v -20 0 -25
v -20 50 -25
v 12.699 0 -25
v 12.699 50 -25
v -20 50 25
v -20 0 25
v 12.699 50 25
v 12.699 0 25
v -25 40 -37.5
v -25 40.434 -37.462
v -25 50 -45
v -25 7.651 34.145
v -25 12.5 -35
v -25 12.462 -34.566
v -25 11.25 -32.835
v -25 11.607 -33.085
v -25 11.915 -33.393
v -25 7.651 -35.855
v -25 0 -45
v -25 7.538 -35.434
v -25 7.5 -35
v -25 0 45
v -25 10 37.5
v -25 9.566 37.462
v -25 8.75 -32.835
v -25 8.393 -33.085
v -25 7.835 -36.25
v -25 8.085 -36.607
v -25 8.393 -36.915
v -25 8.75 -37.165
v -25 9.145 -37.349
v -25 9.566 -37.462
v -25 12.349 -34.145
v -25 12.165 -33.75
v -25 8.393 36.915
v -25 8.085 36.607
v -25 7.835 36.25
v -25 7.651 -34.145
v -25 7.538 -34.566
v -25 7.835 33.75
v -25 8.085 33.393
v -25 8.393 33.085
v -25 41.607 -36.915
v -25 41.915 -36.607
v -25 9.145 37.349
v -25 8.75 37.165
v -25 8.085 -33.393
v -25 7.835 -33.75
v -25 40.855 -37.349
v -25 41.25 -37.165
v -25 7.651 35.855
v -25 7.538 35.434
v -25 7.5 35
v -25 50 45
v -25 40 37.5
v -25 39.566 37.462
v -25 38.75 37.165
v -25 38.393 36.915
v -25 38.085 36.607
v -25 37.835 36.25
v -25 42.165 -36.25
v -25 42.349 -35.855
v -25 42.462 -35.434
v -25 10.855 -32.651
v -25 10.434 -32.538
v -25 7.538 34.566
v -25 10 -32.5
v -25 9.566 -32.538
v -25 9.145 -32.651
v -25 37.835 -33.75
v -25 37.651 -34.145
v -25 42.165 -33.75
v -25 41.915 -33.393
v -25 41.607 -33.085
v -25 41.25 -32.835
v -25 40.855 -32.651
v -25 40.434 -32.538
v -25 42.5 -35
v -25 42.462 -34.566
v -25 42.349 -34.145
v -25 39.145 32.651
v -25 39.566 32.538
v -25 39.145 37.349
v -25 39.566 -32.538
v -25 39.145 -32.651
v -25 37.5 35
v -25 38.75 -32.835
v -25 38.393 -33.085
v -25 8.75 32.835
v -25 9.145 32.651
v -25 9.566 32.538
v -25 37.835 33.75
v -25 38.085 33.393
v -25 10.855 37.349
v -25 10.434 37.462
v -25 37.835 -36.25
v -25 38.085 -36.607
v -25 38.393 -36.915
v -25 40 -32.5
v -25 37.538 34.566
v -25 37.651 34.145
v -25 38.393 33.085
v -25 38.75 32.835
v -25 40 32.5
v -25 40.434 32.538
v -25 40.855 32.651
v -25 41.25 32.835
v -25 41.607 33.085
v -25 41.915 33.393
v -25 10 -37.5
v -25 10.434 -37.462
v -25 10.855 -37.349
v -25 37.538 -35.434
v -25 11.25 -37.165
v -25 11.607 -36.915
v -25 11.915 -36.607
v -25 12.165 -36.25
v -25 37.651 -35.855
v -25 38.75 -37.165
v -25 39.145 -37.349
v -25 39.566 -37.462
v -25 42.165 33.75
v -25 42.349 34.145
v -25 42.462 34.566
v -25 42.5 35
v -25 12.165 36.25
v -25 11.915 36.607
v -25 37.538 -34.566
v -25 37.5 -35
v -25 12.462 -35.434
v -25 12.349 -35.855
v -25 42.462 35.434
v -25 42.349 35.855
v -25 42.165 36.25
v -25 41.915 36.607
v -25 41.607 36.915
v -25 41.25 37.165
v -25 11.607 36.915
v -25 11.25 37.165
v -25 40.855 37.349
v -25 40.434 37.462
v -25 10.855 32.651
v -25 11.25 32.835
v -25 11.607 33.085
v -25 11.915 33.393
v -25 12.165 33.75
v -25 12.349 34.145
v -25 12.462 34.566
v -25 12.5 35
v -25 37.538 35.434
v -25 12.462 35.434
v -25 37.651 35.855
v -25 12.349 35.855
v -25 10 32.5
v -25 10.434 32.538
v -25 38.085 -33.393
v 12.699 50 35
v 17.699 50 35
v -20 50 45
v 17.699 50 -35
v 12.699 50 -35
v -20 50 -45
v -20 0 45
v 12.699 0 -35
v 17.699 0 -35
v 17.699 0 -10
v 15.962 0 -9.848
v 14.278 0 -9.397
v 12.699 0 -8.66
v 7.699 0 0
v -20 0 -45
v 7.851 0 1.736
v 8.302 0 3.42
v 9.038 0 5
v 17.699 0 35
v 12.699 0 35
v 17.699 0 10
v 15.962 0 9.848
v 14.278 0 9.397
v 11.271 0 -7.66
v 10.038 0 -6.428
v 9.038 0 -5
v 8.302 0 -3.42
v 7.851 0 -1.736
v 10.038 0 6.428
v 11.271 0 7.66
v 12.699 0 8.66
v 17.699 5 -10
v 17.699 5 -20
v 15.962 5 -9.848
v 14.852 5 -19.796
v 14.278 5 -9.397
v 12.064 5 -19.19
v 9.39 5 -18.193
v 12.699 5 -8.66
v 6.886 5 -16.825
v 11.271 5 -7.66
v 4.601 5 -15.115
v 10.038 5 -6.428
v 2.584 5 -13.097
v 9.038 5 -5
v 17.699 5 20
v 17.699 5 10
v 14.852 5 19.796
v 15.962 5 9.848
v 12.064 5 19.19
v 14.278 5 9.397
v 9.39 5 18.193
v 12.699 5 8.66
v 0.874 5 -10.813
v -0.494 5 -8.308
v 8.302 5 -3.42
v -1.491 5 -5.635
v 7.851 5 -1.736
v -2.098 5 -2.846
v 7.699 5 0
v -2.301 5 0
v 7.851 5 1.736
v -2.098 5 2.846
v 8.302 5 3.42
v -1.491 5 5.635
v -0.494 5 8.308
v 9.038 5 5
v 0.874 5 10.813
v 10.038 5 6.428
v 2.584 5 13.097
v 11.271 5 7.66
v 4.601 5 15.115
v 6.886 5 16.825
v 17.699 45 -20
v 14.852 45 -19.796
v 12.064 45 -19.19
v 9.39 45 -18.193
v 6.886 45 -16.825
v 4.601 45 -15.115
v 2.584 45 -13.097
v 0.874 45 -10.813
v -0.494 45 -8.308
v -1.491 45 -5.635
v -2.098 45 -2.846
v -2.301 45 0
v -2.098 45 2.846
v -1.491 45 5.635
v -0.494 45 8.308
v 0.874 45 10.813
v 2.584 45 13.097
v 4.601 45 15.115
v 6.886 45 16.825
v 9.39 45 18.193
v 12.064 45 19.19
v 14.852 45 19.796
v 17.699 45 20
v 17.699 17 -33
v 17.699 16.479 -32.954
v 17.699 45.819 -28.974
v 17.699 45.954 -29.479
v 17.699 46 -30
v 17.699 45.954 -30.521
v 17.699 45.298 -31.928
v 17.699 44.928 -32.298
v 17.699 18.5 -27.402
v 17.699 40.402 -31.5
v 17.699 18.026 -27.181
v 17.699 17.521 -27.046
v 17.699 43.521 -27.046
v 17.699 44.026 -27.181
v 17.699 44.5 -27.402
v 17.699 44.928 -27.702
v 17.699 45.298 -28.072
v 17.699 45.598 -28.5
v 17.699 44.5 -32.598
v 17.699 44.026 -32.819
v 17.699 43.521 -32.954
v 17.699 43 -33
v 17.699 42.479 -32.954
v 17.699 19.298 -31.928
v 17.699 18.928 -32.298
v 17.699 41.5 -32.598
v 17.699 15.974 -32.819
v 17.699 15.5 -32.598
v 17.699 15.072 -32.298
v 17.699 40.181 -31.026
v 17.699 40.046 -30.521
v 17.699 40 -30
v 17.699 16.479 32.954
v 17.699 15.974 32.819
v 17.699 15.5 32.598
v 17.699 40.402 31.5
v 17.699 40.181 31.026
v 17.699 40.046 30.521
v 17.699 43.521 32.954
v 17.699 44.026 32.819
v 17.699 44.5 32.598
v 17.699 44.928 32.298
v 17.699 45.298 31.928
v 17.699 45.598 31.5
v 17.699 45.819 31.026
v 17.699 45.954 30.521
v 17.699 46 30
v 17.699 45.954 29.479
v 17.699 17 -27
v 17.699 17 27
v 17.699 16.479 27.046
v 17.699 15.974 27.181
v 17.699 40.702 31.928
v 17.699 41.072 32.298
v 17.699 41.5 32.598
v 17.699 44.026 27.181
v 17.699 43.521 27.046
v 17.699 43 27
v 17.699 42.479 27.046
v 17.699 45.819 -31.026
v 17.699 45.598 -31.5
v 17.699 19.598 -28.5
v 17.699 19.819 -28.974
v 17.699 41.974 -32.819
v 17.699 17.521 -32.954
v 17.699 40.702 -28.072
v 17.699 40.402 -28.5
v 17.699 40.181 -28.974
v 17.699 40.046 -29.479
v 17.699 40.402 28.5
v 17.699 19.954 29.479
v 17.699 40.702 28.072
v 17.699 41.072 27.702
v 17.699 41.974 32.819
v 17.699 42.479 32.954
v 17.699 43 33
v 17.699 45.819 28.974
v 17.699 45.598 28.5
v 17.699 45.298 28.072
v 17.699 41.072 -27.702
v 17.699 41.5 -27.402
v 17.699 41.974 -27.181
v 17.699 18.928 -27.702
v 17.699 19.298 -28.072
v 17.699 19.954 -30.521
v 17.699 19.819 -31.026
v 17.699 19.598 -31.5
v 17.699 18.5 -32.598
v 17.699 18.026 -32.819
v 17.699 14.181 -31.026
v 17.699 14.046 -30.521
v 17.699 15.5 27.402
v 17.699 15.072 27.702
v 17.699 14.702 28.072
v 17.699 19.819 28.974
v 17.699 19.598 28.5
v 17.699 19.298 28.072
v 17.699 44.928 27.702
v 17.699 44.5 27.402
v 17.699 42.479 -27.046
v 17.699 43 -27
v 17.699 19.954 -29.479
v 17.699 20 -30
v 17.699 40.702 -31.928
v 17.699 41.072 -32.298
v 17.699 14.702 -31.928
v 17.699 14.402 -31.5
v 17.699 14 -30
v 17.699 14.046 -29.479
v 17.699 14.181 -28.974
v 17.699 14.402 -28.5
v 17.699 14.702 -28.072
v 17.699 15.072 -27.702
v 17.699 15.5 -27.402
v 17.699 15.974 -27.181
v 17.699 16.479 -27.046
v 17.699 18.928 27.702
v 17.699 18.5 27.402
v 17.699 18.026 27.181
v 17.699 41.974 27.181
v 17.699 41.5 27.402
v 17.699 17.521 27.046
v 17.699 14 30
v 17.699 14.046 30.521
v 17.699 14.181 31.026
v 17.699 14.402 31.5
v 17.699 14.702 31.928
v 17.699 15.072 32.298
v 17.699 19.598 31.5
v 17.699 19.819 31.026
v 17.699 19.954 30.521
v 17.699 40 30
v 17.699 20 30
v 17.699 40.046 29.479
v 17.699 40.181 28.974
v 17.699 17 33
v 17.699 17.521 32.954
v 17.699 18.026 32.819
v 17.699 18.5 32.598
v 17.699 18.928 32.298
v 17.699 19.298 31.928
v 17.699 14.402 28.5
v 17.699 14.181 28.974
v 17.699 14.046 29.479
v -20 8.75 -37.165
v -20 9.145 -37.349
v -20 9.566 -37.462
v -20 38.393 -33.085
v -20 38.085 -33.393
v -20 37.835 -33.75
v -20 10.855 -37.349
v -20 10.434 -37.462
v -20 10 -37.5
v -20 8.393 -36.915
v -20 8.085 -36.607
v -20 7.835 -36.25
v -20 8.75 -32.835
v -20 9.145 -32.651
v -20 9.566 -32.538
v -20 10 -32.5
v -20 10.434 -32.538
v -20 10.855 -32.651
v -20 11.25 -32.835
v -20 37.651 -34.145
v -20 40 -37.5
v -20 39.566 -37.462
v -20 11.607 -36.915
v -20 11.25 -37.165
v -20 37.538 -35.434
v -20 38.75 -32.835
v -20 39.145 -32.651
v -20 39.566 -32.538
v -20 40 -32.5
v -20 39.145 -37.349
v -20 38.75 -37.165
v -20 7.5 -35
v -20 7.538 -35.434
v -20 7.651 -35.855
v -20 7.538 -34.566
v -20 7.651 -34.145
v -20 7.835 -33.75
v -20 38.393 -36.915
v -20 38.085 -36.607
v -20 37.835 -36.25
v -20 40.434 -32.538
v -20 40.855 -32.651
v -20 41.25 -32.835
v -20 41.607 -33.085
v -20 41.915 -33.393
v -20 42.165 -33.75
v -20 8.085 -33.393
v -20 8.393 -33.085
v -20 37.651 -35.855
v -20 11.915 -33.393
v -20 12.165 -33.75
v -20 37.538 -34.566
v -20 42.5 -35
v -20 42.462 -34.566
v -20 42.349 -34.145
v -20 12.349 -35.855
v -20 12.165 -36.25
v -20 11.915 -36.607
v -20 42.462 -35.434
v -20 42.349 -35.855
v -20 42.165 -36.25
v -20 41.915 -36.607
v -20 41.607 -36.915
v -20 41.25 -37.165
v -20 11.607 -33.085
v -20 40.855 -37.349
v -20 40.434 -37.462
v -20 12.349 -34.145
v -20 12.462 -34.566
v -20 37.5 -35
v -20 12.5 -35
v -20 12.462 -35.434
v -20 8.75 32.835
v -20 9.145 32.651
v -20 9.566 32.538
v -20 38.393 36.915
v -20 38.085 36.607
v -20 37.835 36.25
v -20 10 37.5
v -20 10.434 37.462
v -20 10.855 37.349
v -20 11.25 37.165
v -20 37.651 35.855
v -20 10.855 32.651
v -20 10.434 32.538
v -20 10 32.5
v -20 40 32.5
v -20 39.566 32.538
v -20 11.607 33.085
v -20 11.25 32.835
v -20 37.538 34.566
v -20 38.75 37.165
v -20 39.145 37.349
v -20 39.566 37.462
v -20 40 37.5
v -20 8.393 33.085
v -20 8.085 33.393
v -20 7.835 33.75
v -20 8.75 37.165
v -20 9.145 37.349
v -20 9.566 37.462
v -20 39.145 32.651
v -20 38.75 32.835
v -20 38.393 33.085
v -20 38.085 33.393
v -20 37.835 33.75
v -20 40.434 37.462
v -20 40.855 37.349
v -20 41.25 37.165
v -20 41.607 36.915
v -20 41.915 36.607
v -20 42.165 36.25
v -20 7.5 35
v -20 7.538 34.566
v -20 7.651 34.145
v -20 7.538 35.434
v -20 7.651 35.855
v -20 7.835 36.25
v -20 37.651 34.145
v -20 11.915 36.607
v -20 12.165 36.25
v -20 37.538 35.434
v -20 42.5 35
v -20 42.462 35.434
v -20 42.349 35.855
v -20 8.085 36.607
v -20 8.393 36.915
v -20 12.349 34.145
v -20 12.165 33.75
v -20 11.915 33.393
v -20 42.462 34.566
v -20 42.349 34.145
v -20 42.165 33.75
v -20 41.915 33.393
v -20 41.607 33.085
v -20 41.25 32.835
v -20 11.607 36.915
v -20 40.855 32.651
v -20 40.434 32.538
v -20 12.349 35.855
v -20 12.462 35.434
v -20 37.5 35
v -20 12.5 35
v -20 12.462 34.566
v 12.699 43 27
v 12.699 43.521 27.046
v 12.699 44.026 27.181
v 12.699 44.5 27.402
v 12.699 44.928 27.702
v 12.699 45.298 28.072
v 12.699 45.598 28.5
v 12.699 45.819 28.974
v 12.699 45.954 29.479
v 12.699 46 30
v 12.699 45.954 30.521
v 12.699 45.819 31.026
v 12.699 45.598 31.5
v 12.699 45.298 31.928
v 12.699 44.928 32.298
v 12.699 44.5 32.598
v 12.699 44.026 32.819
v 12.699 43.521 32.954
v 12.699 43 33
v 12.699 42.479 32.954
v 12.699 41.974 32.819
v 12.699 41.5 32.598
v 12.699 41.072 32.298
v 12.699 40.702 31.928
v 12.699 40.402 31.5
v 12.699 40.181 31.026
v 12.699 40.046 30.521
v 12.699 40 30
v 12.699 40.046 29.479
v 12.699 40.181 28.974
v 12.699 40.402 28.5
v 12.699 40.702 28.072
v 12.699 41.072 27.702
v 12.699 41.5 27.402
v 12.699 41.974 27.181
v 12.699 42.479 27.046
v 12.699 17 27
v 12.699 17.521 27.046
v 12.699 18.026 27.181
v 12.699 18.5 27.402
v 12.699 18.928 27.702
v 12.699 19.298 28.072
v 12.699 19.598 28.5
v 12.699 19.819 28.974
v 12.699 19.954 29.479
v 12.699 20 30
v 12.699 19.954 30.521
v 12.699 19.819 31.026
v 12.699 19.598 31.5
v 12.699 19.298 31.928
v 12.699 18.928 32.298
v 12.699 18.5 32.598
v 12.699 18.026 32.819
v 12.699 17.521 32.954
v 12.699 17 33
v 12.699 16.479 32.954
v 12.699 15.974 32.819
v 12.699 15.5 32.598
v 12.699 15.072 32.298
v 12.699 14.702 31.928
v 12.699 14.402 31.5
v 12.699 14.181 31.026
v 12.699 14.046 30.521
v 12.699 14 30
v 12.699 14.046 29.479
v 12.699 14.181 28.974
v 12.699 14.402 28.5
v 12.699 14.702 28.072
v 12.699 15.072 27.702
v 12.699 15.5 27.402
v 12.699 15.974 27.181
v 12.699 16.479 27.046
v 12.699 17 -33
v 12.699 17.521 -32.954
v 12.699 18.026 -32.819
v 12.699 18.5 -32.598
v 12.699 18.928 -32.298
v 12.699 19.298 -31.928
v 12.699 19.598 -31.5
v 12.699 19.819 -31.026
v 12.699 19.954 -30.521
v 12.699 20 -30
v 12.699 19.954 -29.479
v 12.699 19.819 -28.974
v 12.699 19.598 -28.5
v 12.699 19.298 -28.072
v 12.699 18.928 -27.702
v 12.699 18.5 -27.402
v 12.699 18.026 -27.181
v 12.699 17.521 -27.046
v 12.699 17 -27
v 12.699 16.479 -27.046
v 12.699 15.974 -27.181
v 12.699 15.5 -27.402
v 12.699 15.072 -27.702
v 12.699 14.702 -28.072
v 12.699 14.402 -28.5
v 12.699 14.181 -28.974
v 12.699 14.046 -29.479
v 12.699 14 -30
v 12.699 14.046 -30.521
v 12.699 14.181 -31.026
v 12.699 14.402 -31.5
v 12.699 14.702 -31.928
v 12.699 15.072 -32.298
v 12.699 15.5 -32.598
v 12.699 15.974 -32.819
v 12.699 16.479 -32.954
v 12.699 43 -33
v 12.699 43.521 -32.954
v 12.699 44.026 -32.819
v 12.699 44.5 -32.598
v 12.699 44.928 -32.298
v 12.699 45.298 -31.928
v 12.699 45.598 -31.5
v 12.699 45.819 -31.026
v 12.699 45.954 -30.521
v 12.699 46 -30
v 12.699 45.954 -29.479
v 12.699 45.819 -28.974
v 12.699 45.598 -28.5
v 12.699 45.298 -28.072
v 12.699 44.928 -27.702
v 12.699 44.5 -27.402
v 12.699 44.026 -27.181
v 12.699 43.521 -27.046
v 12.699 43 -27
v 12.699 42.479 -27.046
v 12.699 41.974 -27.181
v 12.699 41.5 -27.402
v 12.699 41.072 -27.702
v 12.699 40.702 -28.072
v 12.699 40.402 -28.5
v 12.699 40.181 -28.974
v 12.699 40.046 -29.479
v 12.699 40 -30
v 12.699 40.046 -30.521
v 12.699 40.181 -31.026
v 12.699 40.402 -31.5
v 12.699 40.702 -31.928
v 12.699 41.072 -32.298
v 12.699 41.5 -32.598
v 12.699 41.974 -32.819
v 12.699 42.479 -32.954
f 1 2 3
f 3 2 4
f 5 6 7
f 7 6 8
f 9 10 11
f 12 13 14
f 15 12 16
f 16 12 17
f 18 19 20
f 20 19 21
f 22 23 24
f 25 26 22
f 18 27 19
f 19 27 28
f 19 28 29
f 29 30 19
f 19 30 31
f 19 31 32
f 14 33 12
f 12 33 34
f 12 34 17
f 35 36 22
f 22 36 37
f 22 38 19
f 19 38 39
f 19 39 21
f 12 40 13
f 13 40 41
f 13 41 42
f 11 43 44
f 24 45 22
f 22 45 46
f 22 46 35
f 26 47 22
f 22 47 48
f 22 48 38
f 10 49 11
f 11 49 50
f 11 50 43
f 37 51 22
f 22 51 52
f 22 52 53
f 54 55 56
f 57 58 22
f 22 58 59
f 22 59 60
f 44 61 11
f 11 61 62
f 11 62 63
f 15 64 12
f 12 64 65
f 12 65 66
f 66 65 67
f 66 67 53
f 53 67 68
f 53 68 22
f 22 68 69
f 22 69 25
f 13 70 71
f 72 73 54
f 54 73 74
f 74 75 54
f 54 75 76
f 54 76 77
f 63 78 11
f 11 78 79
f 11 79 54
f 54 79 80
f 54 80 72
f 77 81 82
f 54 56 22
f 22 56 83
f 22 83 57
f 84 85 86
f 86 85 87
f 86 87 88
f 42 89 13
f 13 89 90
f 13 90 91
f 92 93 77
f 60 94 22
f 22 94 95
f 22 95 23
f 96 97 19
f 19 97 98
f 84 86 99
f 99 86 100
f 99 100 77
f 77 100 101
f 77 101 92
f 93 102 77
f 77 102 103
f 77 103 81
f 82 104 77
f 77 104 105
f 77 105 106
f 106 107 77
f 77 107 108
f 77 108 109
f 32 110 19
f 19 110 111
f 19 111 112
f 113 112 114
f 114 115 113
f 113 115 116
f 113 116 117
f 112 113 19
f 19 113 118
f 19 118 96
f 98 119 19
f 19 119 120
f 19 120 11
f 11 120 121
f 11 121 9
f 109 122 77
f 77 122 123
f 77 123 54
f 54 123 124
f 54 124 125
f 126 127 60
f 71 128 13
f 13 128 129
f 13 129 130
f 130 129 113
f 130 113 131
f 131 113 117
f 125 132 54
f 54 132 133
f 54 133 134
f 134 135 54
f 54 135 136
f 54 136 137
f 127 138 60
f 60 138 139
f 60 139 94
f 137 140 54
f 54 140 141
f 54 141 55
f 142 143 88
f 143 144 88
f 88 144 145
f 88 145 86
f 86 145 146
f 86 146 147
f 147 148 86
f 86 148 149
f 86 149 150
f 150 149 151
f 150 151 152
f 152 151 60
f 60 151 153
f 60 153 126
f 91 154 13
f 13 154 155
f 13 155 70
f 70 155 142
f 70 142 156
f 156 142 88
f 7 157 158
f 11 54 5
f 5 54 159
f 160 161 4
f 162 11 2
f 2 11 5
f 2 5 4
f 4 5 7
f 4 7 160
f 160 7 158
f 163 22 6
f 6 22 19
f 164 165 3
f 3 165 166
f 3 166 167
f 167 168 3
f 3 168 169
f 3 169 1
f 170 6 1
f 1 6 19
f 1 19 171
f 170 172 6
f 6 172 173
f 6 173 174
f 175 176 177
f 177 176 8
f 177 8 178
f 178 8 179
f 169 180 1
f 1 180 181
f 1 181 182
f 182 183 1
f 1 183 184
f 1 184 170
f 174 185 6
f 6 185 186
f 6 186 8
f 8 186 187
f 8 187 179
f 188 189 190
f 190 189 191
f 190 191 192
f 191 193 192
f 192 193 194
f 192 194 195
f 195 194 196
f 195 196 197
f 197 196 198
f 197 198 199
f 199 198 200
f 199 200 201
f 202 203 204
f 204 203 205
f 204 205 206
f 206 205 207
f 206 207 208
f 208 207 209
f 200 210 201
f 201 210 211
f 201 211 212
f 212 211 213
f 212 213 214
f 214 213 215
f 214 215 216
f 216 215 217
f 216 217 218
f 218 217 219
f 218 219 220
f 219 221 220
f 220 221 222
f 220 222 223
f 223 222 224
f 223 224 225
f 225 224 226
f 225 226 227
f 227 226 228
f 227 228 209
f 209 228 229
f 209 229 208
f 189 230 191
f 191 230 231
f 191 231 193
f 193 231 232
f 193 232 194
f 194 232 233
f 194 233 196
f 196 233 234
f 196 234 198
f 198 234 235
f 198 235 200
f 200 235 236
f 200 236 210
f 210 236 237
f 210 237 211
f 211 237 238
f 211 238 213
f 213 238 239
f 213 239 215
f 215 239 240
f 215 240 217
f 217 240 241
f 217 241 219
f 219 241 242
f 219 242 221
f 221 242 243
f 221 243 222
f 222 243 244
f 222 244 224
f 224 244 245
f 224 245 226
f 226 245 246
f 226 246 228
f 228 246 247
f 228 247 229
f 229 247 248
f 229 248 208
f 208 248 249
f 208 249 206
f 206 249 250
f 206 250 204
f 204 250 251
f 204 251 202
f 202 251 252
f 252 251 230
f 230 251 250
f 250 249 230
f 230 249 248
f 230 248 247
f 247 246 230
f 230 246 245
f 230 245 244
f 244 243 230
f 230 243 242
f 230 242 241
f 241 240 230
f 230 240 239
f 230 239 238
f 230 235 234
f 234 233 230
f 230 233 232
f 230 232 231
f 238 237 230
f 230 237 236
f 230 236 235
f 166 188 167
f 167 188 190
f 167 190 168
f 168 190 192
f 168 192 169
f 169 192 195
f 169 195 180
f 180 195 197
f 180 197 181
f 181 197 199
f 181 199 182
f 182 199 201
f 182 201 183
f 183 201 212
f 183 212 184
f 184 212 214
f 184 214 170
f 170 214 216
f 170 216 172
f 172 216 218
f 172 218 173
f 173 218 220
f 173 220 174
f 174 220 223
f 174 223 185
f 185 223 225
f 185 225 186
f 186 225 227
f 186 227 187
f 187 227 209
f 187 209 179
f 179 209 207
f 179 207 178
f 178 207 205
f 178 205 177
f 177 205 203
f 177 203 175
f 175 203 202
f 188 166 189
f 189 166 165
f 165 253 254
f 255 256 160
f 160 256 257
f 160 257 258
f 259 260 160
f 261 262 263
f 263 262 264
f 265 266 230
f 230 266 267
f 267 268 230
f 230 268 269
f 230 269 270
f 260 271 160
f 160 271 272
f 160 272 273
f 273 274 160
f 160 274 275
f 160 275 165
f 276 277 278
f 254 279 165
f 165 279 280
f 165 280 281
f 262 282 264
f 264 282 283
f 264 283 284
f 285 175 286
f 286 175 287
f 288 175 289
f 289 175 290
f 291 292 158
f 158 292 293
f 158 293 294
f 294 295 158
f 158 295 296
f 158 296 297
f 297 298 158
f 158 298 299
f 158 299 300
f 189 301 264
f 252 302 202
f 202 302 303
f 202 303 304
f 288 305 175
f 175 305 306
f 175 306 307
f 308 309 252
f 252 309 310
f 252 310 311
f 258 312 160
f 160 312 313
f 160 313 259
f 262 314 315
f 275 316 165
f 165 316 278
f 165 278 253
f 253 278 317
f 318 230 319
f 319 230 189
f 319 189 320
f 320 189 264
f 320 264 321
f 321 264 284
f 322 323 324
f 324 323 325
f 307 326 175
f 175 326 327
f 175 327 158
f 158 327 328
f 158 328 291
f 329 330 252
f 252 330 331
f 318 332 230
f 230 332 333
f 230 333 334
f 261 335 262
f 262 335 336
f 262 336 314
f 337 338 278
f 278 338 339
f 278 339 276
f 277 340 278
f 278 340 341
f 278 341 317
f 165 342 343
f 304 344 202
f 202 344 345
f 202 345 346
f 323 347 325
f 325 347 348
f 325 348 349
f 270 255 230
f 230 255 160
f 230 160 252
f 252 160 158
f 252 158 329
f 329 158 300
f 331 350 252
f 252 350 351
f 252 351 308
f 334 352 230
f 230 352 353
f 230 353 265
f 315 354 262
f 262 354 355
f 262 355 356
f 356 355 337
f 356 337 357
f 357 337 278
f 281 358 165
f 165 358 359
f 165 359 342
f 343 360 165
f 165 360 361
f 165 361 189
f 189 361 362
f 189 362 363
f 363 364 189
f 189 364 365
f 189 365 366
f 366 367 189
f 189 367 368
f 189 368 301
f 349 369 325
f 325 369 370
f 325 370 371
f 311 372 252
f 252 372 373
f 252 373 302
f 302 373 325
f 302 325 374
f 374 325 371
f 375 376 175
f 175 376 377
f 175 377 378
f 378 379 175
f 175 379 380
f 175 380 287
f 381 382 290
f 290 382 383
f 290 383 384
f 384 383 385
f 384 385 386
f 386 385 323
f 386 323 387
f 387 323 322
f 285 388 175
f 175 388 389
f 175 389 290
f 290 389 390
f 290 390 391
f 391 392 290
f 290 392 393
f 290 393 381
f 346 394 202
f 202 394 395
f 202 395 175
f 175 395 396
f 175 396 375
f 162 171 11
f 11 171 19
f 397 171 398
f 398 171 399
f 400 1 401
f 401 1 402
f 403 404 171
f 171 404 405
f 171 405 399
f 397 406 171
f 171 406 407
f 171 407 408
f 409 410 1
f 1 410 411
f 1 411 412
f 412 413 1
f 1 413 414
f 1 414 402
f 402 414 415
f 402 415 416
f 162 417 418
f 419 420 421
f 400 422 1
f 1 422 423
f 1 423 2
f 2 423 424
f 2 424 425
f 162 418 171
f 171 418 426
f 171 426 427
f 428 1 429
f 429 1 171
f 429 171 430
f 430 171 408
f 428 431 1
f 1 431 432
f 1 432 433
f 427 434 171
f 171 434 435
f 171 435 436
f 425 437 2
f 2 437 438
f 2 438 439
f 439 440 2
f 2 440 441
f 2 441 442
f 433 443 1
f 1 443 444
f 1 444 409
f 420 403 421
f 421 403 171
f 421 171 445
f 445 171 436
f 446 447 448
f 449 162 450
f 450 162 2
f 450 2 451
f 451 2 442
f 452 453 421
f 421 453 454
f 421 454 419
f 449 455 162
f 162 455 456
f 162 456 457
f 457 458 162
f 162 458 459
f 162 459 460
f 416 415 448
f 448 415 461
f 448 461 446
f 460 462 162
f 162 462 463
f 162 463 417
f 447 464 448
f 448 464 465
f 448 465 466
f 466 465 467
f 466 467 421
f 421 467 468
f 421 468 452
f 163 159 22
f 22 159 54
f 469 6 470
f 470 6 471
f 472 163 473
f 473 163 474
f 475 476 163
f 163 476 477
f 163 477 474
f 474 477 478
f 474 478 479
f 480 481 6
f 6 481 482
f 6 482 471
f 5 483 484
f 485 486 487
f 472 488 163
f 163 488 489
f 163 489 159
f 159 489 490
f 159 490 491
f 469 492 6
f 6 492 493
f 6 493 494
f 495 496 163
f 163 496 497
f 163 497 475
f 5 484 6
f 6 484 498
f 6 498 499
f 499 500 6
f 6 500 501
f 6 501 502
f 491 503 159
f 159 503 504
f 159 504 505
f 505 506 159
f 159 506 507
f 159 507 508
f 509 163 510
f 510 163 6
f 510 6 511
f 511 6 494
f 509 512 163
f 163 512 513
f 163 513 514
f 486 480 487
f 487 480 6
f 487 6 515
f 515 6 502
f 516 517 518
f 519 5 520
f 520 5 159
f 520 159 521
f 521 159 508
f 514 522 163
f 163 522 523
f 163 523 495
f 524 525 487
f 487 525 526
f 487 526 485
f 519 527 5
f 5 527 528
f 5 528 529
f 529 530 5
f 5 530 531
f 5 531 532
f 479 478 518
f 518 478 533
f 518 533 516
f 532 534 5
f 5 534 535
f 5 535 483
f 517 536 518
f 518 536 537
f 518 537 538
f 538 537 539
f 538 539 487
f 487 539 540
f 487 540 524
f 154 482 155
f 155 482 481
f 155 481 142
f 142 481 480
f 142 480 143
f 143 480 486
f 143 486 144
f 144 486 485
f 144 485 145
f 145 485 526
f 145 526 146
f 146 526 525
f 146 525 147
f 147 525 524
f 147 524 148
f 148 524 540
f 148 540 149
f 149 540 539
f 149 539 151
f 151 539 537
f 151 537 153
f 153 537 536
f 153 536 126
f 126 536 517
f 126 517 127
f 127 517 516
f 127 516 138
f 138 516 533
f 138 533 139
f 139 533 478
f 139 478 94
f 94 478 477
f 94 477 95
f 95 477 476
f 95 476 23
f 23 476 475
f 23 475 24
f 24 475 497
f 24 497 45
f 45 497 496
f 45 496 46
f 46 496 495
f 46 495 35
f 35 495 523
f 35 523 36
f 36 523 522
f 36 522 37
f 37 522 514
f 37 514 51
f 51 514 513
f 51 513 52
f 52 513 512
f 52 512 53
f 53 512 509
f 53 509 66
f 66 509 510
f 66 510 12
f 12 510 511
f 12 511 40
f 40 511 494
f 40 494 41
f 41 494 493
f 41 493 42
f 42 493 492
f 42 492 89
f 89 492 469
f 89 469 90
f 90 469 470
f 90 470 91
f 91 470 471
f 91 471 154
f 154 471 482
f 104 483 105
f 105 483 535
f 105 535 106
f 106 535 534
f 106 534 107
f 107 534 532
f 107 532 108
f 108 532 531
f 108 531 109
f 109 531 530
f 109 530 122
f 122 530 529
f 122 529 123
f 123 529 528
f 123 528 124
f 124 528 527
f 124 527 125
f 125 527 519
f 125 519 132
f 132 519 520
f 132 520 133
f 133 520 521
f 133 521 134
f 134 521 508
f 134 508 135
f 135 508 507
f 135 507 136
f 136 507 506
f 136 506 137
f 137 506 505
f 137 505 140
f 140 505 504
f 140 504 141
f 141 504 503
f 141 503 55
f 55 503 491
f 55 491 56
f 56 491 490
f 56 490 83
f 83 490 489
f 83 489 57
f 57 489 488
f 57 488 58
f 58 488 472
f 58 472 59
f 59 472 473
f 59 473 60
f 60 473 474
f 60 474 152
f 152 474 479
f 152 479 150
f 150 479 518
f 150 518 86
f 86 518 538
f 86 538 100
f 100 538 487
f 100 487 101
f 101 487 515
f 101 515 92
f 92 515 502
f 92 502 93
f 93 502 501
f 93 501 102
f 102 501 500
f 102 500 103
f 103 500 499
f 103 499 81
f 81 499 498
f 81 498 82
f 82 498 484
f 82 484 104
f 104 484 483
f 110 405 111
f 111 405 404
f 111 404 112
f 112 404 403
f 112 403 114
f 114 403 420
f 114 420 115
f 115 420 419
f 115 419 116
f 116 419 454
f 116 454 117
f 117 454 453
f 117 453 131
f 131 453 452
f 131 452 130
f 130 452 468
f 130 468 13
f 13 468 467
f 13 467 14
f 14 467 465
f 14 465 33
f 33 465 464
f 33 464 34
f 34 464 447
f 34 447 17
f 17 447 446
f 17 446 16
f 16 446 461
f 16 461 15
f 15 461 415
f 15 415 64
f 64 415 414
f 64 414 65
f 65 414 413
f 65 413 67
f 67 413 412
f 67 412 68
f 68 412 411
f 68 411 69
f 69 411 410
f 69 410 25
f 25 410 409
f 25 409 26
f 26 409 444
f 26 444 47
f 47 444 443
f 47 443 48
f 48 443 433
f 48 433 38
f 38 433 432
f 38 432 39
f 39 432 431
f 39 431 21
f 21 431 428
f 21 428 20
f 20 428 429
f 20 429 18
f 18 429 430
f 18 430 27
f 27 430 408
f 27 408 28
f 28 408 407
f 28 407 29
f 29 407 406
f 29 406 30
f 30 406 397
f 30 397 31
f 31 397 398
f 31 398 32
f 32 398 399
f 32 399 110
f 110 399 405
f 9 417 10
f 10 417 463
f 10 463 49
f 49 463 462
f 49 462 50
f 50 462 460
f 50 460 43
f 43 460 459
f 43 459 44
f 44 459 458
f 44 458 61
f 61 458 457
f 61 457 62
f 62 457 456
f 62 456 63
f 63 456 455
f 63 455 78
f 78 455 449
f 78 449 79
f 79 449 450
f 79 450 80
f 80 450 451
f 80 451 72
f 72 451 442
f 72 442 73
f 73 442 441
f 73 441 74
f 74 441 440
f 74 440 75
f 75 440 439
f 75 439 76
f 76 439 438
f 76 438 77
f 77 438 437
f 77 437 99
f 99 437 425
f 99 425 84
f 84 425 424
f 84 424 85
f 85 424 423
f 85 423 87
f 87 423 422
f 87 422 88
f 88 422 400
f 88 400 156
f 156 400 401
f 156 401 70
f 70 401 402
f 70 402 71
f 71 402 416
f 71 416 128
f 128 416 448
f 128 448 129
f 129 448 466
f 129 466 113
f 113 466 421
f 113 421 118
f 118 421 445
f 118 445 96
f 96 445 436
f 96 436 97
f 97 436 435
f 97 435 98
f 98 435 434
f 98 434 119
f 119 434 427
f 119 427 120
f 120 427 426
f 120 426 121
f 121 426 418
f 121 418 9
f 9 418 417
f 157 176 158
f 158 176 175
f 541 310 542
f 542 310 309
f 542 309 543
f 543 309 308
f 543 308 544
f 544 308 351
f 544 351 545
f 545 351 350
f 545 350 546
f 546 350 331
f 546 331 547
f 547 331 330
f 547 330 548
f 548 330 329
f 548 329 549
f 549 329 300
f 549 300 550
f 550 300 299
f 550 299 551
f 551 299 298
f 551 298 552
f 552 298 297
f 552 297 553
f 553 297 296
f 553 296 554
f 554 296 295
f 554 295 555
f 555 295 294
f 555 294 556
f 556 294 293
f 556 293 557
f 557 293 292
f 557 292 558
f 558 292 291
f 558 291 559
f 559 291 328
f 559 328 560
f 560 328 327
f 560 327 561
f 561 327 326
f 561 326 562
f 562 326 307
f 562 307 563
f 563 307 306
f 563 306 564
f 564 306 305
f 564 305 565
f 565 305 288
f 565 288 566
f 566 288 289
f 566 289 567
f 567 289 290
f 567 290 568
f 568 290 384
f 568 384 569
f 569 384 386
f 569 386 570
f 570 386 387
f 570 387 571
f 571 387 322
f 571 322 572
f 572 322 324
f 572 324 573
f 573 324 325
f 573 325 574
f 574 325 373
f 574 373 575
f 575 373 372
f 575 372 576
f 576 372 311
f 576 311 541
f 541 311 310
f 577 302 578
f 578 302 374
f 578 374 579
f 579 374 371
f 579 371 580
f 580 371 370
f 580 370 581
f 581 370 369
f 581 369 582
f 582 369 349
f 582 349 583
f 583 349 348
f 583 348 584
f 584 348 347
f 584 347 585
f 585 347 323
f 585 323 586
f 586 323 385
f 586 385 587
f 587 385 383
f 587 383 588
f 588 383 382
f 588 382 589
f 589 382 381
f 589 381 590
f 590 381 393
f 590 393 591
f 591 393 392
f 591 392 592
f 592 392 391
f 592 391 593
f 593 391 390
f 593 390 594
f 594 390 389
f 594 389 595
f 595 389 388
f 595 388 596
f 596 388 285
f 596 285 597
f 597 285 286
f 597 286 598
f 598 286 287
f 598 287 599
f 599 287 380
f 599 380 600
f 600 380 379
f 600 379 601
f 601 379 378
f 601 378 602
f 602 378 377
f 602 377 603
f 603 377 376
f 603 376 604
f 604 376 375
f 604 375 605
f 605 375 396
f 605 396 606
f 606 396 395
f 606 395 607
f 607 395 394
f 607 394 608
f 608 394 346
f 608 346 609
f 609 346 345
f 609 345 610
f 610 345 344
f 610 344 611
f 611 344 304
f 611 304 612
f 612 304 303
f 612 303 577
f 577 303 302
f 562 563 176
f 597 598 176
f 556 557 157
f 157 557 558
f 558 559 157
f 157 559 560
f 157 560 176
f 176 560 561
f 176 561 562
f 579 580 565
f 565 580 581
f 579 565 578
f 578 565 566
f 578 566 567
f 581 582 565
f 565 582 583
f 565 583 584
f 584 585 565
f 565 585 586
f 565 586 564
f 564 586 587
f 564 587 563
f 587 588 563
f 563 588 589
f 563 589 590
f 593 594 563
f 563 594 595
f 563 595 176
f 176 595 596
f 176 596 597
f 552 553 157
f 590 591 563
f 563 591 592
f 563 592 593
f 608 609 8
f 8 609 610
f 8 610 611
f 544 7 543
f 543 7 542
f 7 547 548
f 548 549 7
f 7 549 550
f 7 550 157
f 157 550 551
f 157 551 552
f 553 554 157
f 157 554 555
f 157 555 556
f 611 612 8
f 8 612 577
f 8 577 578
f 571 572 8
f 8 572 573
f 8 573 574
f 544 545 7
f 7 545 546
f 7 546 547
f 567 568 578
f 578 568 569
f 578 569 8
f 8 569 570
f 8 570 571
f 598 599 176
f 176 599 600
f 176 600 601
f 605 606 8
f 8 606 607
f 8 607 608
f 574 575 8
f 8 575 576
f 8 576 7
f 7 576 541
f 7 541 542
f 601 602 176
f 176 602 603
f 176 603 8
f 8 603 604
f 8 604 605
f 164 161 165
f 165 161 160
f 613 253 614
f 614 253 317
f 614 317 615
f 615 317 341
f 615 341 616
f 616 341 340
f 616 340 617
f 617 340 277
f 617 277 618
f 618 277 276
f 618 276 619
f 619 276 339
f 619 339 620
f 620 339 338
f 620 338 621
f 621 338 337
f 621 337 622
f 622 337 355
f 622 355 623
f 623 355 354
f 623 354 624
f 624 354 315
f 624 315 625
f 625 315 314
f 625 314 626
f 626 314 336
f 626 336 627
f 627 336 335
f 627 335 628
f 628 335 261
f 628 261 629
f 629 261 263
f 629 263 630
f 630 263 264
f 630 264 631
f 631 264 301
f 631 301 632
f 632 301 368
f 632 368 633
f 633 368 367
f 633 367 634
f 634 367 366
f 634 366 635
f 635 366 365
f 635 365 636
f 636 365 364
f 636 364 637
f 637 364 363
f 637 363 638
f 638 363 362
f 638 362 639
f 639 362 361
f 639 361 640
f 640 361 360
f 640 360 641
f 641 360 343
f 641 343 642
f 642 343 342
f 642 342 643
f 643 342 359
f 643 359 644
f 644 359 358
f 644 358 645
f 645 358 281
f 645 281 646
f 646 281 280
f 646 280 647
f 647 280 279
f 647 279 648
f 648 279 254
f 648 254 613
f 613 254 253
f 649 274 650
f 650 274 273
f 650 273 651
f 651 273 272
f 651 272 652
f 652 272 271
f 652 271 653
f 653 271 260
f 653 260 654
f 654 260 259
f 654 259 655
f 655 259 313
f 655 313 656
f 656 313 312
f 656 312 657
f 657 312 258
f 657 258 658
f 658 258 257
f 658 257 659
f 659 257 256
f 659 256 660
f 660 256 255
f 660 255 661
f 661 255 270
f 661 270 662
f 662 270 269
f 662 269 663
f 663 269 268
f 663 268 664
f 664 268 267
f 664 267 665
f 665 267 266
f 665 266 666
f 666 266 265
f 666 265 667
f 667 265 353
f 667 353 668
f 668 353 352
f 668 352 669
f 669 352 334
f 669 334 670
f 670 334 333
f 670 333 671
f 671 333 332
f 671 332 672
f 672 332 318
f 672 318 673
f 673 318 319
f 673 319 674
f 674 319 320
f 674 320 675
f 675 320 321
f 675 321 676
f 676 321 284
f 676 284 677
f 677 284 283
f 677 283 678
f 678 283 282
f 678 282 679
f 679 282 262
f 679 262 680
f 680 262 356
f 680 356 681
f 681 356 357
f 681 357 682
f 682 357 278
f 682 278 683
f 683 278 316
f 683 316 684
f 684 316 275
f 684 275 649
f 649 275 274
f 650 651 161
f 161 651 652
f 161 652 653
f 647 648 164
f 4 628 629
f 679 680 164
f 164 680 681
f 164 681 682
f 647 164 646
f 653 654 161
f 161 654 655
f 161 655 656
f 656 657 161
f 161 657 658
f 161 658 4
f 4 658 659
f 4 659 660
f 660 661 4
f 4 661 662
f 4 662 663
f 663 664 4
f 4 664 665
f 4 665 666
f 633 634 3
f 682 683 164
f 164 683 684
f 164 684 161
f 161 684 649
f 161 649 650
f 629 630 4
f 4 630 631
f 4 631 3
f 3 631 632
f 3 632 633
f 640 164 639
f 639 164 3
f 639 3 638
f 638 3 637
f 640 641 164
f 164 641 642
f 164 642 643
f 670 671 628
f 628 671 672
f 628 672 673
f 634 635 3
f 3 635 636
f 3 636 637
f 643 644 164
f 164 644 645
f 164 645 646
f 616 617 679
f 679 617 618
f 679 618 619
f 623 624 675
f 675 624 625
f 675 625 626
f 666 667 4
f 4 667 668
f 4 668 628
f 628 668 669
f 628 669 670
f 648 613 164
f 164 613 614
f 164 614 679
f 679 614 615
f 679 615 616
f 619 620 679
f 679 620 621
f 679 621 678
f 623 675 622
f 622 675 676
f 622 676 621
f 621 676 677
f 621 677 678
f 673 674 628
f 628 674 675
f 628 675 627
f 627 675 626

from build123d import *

# Parameters (mm, degrees)
SKETCH1_W           = 50
SKETCH1_H           = 50
BOSS_EXTRUDE1_DEPTH = 50
CAVITY1_START       = 5
CAVITY1_DEPTH       = 40
CAVITY1_2_DEPTH     = 5
CUT_EXTRUDE3_REACH  = 72.343
SKETCH6_W           = 50
SKETCH6_H           = 50
SKETCH4_W           = 20
SKETCH4_H           = 50
BOSS_EXTRUDE2_DEPTH = 5
SKETCH5_R           = 2.5
CUT_EXTRUDE2_DEPTH  = 5
SKETCH7_W           = 10
SKETCH7_H           = 50
SKETCH7_R           = 3
BOSS_EXTRUDE3_DEPTH = 5


# Read off the part's stored shape, not the designer's step: Cavity1
with BuildPart() as part:
    # Sketch1 → Boss-Extrude1 (new body)
    with BuildSketch(Plane(origin=(0, 0, 0), x_dir=(1, 0, 0), z_dir=(0, 1, 0))):
        Rectangle(SKETCH1_W, SKETCH1_H)
    extrude(amount=BOSS_EXTRUDE1_DEPTH)

    # Cavity1 outline → Cavity1 (cut)
    with BuildSketch(Plane(origin=(0, 0, 0), x_dir=(1, 0, 0), z_dir=(0, 1, 0)).offset(CAVITY1_START)):
        with BuildLine():
            ThreePointArc((25, 18.619634446), (-2.301315846, 0), (25, -18.619634446))
            Line((25, -18.619634446), (25, 18.619634446))
        make_face()
    extrude(amount=CAVITY1_DEPTH, mode=Mode.SUBTRACT)

    # Cavity1 2 outline → Cavity1 2 (cut)
    with BuildSketch(Plane(origin=(0, 0, 0), x_dir=(1, 0, 0), z_dir=(0, 1, 0))):
        with BuildLine():
            Line((25, -6.833065704), (25, 6.833065704))
            ThreePointArc((25, 6.833065704), (7.698684154, 0), (25, -6.833065704))
        make_face()
    extrude(amount=CAVITY1_2_DEPTH, mode=Mode.SUBTRACT)

    # Sketch6 → Cut-Extrude3 (cut, up to next)
    with BuildSketch(Plane.ZY.offset(-17.698684154), mode=Mode.PRIVATE) as cut_extrude3_sk1:
        with Locations((0, 25)):
            Rectangle(SKETCH6_W, SKETCH6_H)
    cut_extrude3_tool1 = extrude(cut_extrude3_sk1.sketch, amount=-CUT_EXTRUDE3_REACH, mode=Mode.PRIVATE) & part.part
    add(cut_extrude3_tool1.solids().sort_by_distance((17.698684, 25, 0))[0], mode=Mode.SUBTRACT)

    # Sketch4 → Boss-Extrude2 (add)
    with BuildSketch(Plane.ZY.offset(25)):
        with Locations((-35, 25)):
            Rectangle(SKETCH4_W, SKETCH4_H)
        with Locations((35, 25)):
            Rectangle(SKETCH4_W, SKETCH4_H)
    extrude(amount=-BOSS_EXTRUDE2_DEPTH)

    # Sketch5 → Cut-Extrude2 (cut)
    with BuildSketch(Plane(origin=(-20, 0, 0), x_dir=(0, 0, -1), z_dir=(1, 0, 0))):
        with Locations((-35, 40)):
            Circle(SKETCH5_R)
        with Locations((-35, 10)):
            Circle(SKETCH5_R)
    cut_extrude2 = extrude(amount=-CUT_EXTRUDE2_DEPTH, mode=Mode.SUBTRACT)

    # Mirror1: Cut-Extrude2 across plane
    add(cut_extrude2.mirror(Plane.XY), mode=Mode.SUBTRACT)

    # Sketch7 → Boss-Extrude3 (add)
    # profile 1 of 2: a face of its own
    with BuildSketch(Plane(origin=(17.698684154, 0, 0), x_dir=(0, 0, -1), z_dir=(1, 0, 0))):
        with Locations((-30, 25)):
            Rectangle(SKETCH7_W, SKETCH7_H)
        with Locations((-30, 17)):
            Circle(SKETCH7_R, mode=Mode.SUBTRACT)
        with Locations((-30, 43)):
            Circle(SKETCH7_R, mode=Mode.SUBTRACT)
    # profile 2 of 2: a face of its own
    with BuildSketch(Plane(origin=(17.698684154, 0, 0), x_dir=(0, 0, -1), z_dir=(1, 0, 0))):
        with Locations((30, 25)):
            Rectangle(SKETCH7_W, SKETCH7_H)
        with Locations((30, 43)):
            Circle(SKETCH7_R, mode=Mode.SUBTRACT)
        with Locations((30, 17)):
            Circle(SKETCH7_R, mode=Mode.SUBTRACT)
    extrude(amount=-BOSS_EXTRUDE3_DEPTH)


solid = part.part
